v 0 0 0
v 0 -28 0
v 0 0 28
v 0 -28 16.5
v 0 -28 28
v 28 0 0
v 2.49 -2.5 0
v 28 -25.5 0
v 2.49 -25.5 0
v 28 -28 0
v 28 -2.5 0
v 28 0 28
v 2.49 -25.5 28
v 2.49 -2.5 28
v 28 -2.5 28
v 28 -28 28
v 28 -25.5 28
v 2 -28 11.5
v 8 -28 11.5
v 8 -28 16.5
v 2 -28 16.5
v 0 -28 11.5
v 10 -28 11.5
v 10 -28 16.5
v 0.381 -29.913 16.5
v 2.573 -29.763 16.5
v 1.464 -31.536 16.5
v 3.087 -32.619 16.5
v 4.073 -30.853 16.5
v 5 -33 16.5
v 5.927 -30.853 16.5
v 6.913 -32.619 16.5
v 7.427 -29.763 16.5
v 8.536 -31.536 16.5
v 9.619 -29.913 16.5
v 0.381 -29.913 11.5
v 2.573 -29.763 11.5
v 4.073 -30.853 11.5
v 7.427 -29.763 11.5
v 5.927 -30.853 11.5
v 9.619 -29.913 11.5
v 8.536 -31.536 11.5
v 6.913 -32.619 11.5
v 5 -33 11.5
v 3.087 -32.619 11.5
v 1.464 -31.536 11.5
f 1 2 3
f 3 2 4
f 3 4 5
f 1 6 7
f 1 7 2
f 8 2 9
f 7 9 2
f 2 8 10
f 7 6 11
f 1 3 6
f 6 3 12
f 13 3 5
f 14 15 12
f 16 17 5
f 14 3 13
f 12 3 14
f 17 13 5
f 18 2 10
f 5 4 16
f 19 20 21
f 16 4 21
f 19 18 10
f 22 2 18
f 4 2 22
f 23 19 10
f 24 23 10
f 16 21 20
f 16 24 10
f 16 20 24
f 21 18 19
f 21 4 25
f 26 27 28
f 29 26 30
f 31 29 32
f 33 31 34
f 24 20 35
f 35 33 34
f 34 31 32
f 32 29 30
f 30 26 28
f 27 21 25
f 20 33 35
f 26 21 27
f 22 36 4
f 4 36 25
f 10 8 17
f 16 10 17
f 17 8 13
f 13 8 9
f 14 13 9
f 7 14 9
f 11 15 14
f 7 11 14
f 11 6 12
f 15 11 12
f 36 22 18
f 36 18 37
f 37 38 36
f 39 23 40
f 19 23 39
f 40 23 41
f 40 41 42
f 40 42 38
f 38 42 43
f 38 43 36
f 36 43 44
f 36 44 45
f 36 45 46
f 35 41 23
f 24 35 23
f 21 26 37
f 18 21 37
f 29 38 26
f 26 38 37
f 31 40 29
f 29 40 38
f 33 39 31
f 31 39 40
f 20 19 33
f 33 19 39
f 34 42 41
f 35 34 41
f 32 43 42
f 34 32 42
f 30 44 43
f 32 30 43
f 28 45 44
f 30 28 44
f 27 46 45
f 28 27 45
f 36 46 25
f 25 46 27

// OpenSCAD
/* [Global] */
table_height = 23;
clipper_thickness = 5; 
hole_radius = 3;

/* [Hidden] */
printable = 1;
mo = 0.01;

rotate([printable?90:0,0,0])
clipper();

module clipper() {
	difference() {
		union(){
			cube(table_height + clipper_thickness);

			difference(){
				translate([hole_radius+2, (table_height + clipper_thickness*2  )/2, table_height + clipper_thickness])
				rotate([90,0,0])
					cylinder(h=clipper_thickness,r=hole_radius+2);

				translate([hole_radius+2, (table_height + clipper_thickness*2  )/2 +mo , table_height + clipper_thickness])
				rotate([90,0,0])
					cylinder(h=clipper_thickness+2*mo,r=hole_radius);
			}
		}


		translate([-mo+clipper_thickness/2,-mo,clipper_thickness/2])
			cube([table_height+clipper_thickness + 2*mo,table_height+clipper_thickness + 2*mo,table_height]);
	}
}
